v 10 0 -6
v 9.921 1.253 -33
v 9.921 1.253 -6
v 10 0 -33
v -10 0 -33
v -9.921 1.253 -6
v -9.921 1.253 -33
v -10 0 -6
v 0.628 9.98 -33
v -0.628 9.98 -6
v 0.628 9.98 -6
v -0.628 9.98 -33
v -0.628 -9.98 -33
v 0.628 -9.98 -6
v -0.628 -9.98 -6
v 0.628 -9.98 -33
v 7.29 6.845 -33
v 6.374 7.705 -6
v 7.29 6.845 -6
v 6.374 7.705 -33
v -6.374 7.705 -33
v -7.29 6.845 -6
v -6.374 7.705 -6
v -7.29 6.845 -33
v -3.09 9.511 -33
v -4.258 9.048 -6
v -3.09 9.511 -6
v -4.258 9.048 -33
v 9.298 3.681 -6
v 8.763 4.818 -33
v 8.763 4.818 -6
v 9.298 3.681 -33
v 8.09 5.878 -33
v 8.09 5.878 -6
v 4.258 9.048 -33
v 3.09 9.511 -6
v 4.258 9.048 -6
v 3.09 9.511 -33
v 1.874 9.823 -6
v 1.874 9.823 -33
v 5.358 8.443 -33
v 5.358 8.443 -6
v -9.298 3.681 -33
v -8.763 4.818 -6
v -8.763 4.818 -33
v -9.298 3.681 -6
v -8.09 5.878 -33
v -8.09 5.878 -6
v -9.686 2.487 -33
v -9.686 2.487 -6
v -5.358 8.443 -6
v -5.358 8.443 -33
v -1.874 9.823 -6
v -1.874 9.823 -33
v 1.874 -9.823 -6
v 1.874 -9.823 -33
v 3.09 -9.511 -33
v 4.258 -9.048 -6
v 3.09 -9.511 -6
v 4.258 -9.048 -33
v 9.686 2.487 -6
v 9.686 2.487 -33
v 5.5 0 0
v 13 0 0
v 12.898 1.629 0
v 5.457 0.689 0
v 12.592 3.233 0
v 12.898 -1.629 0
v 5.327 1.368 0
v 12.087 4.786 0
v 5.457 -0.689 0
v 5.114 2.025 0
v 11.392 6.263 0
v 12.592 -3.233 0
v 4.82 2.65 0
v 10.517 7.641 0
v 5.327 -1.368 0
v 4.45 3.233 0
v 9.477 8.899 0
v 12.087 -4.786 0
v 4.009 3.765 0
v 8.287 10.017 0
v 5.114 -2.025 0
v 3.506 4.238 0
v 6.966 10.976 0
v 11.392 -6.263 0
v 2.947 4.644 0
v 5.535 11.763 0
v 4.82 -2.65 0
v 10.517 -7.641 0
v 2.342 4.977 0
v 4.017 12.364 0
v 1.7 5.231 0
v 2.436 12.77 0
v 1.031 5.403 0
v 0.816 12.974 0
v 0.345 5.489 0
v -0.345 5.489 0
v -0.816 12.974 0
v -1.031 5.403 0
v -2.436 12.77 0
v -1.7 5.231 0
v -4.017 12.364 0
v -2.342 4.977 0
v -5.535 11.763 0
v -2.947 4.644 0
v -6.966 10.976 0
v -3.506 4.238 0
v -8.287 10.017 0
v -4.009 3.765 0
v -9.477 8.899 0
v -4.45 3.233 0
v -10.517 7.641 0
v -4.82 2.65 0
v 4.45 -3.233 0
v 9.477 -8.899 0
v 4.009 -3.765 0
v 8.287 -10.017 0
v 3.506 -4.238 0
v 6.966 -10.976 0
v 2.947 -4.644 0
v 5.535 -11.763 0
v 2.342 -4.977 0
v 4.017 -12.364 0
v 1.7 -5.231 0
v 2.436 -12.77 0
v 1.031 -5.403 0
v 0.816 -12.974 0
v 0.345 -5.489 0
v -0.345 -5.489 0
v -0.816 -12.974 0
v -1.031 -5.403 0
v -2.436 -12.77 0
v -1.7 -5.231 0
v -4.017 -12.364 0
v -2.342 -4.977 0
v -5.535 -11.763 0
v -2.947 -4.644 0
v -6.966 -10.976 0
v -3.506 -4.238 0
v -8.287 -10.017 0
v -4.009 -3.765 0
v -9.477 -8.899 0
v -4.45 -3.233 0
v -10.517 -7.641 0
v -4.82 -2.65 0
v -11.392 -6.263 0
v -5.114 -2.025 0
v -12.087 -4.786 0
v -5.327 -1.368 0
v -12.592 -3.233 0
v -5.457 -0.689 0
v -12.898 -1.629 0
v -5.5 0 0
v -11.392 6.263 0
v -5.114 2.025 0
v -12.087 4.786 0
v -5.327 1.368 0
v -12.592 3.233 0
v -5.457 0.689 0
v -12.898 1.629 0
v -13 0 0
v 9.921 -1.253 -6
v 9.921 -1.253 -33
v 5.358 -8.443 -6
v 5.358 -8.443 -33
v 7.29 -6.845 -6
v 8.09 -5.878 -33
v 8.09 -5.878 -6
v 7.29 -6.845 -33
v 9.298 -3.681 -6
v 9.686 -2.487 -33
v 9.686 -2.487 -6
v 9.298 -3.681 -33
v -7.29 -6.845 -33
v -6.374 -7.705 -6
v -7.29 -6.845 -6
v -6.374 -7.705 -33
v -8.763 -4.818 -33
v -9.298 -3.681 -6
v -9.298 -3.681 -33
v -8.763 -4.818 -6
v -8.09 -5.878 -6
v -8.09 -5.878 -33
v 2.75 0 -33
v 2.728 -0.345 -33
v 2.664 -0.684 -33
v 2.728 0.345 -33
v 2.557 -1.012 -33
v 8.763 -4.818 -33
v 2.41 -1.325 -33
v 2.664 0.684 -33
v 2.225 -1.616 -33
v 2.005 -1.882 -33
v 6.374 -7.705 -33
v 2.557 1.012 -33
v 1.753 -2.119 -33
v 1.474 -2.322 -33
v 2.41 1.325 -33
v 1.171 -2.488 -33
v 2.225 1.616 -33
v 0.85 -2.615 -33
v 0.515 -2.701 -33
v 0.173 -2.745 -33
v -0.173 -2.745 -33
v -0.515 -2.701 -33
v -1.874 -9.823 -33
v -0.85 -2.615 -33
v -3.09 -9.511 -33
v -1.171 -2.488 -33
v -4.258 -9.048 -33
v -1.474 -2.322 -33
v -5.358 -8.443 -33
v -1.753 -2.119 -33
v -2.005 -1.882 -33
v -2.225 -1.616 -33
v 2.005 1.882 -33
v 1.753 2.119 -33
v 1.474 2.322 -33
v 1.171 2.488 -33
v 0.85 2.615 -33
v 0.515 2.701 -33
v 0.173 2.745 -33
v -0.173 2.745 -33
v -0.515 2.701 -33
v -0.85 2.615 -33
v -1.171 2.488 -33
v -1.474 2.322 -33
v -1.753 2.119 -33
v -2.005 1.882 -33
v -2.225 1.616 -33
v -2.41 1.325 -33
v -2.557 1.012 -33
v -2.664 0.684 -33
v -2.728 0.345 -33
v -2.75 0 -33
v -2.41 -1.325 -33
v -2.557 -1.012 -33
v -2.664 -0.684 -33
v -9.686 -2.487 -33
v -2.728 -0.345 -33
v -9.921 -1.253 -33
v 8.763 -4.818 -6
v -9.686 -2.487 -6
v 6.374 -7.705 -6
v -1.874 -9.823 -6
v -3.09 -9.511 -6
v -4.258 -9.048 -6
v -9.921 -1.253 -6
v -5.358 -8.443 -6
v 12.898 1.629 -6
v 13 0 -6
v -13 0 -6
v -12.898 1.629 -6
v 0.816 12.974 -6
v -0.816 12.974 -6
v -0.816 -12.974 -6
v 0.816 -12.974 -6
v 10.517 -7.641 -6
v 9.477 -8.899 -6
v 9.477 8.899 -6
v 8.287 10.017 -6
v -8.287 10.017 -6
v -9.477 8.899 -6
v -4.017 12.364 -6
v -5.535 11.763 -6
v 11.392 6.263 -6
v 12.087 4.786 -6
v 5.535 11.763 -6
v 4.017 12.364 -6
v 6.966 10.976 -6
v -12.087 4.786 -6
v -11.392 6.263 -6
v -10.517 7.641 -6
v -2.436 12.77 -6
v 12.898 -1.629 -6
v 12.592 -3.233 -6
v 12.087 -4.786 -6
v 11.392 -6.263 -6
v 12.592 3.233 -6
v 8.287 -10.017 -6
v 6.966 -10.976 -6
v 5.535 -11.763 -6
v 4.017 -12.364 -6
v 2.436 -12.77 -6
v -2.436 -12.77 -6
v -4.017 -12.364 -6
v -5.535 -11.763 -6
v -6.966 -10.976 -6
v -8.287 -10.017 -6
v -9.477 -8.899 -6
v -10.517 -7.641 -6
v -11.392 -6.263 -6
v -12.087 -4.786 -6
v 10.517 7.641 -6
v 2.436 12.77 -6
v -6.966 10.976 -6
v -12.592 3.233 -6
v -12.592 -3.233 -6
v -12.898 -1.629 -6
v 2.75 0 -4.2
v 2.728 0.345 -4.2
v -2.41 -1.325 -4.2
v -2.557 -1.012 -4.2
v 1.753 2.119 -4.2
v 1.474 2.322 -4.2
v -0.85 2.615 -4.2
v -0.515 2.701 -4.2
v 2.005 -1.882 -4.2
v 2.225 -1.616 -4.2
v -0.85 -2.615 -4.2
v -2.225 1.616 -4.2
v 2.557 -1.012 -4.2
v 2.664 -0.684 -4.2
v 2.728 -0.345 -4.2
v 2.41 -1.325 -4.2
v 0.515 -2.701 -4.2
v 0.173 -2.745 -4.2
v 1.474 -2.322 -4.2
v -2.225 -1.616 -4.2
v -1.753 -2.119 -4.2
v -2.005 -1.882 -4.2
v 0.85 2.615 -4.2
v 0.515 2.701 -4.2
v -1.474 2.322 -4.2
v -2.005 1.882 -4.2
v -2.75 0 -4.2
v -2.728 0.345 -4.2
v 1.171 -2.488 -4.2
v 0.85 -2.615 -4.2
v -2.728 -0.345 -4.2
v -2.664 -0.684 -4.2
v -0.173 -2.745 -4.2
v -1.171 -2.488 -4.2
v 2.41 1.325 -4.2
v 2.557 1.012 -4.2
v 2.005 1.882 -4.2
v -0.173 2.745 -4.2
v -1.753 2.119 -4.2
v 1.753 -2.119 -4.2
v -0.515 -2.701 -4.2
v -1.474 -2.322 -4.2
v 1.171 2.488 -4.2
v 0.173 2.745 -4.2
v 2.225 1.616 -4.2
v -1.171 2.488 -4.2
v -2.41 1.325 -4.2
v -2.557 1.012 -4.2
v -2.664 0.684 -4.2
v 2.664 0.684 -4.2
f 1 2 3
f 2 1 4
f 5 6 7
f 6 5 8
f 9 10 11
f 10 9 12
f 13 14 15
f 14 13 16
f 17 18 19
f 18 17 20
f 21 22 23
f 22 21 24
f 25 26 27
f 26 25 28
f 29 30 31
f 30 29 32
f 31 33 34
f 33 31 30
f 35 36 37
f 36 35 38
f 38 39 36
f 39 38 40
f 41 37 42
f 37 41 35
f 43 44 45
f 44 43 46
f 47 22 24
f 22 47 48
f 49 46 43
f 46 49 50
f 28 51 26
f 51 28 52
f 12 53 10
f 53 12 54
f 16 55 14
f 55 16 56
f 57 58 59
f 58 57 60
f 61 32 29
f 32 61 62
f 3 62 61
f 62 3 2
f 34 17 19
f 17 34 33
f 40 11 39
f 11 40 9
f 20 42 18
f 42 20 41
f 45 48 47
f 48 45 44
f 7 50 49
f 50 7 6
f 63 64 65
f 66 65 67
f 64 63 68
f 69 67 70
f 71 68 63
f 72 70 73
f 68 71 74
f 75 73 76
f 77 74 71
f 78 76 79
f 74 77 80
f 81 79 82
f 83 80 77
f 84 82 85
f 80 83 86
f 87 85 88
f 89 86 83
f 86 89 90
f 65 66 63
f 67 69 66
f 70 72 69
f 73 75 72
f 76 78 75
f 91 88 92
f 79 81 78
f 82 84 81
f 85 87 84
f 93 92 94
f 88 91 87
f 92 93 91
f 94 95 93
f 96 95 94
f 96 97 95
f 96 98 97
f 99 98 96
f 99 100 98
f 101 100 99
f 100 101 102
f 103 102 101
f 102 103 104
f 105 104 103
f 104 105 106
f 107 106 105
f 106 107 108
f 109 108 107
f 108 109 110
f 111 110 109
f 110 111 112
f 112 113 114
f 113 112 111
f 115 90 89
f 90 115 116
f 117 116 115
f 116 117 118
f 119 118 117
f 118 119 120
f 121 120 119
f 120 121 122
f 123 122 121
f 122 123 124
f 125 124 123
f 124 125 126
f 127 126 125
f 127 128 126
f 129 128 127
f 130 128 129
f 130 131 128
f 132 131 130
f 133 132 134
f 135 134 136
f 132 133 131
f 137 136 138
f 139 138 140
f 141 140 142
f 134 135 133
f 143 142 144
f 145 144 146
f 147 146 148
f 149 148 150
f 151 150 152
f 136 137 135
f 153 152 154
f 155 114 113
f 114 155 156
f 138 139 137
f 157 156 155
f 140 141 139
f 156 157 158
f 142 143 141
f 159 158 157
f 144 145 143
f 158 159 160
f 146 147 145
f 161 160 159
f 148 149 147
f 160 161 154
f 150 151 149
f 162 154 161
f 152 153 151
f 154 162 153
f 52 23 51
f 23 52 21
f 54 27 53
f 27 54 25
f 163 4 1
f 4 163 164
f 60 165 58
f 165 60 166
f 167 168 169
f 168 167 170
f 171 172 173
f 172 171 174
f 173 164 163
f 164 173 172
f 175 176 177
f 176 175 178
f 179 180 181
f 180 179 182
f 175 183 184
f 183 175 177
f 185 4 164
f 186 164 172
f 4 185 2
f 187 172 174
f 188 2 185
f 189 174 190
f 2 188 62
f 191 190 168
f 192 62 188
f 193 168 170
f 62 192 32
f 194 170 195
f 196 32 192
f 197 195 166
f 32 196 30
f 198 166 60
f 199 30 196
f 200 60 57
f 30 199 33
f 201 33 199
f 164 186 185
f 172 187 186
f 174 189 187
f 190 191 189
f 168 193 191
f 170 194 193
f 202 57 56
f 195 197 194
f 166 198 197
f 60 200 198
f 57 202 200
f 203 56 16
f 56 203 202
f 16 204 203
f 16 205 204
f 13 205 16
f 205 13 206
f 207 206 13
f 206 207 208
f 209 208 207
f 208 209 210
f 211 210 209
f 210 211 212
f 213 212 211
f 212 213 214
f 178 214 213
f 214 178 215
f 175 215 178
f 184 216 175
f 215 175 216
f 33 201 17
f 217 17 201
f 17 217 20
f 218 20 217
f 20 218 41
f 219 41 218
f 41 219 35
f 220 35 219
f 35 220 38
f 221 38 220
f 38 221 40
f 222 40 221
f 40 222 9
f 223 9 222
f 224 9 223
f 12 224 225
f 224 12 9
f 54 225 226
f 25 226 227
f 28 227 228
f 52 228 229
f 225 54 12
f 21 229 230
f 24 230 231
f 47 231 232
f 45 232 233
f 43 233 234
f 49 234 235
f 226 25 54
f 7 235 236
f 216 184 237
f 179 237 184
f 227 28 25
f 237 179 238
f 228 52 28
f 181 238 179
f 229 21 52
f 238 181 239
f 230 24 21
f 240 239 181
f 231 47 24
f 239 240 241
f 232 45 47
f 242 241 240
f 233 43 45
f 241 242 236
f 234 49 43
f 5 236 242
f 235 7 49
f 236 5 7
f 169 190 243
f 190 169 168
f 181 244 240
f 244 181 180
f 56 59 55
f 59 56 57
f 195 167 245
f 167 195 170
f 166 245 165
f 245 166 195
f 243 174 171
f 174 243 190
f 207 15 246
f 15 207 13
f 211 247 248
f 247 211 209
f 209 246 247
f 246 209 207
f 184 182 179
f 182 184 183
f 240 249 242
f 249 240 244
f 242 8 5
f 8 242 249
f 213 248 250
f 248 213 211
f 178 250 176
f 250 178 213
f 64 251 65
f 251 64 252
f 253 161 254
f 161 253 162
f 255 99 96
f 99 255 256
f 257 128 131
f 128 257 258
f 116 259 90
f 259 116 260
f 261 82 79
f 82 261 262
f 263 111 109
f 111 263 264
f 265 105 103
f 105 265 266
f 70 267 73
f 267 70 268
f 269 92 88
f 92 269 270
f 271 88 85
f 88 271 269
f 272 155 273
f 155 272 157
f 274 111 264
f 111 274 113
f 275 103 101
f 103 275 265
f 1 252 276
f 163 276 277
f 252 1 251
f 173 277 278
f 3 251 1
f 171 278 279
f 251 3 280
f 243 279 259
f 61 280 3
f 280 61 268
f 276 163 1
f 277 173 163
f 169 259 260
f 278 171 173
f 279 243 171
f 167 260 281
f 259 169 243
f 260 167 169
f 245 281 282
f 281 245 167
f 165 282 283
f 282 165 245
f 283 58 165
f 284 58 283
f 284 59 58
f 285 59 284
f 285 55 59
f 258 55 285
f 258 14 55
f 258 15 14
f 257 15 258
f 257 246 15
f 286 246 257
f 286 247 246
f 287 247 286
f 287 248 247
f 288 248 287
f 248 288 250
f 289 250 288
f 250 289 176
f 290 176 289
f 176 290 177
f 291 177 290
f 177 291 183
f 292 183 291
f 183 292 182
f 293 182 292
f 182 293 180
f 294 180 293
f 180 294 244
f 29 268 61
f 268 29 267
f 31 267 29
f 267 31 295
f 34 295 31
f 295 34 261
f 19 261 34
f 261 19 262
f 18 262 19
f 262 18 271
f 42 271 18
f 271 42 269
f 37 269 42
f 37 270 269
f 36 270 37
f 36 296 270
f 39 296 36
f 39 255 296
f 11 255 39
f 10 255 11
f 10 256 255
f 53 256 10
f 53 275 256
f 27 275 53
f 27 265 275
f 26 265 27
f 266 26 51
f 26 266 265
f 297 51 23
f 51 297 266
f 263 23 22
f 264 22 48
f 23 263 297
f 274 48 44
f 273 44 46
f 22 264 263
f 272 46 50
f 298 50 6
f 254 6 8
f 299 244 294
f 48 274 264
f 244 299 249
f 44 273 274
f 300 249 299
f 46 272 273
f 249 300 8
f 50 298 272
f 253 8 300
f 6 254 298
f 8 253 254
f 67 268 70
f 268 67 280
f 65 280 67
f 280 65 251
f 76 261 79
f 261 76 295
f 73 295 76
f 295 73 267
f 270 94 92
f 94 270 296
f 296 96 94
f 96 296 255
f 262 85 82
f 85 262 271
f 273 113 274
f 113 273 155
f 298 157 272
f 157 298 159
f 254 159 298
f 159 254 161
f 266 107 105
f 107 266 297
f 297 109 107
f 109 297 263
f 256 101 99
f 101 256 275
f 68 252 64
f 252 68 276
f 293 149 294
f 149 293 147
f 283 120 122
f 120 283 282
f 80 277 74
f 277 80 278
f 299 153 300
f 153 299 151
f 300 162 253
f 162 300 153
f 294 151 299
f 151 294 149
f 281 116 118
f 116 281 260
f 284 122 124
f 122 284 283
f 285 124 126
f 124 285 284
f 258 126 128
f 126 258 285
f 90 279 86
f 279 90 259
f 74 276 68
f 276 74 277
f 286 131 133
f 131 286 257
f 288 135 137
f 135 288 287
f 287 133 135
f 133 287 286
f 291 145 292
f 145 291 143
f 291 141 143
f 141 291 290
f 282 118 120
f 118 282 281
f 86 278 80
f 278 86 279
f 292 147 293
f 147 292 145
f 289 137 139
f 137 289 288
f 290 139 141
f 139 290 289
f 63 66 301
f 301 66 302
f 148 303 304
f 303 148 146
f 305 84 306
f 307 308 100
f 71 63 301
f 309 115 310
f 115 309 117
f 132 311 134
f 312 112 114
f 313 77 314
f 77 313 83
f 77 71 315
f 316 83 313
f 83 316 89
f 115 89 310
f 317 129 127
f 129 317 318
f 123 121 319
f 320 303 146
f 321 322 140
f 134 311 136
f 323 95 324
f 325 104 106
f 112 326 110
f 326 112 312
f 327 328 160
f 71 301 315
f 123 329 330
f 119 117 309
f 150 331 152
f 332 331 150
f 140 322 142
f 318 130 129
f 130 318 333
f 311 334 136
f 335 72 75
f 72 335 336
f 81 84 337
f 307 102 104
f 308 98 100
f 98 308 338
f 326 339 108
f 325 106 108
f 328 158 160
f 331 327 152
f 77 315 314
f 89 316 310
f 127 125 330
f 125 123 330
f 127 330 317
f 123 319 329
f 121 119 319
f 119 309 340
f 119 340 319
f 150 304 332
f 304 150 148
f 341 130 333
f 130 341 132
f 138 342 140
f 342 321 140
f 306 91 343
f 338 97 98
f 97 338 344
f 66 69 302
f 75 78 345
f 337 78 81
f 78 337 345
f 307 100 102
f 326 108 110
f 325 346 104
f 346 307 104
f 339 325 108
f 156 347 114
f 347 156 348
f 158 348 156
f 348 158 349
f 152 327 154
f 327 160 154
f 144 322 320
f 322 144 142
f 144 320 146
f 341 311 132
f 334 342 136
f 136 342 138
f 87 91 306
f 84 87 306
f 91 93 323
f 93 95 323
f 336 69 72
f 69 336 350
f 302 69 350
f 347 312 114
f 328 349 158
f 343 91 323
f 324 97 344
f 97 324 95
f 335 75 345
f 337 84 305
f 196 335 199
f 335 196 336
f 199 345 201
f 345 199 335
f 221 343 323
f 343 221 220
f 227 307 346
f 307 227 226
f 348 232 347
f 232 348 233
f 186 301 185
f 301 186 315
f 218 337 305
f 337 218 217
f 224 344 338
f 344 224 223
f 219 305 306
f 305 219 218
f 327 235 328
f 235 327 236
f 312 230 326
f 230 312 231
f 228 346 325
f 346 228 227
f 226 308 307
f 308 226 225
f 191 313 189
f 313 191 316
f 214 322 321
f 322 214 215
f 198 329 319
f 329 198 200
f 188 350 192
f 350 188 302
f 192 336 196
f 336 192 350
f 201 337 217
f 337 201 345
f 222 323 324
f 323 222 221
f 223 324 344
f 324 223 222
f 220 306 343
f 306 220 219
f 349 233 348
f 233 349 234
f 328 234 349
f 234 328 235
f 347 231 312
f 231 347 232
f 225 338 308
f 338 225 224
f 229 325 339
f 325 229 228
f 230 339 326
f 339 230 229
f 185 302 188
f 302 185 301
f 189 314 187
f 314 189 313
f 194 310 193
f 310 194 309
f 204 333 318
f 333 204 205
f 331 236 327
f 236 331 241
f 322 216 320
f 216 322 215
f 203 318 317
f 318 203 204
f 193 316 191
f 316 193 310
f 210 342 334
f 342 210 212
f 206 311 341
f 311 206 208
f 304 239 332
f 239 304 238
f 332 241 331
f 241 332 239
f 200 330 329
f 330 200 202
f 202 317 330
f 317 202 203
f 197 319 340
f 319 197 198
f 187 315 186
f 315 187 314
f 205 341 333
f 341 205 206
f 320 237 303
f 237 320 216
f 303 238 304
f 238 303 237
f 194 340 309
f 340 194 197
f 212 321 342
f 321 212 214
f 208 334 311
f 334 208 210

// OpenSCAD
$fn = 50;


difference() {
	union() {
		translate(v = [0, 0, -33.0000000000]) {
			cylinder(h = 33, r = 10.0000000000);
		}
		translate(v = [0, 0, -6.0000000000]) {
			cylinder(h = 6, r = 13.0000000000);
		}
	}
	union() {
		translate(v = [0, 0, 0]) {
			rotate(a = [0, 0, 0]) {
				difference() {
					union() {
						#translate(v = [0, 0, -33.0000000000]) {
							cylinder(h = 33, r = 2.2500000000);
						}
						#translate(v = [0, 0, -4.2000000000]) {
							cylinder(h = 4.2000000000, r1 = 2.7500000000, r2 = 5.5000000000);
						}
						#translate(v = [0, 0, -33.0000000000]) {
							cylinder(h = 33, r = 2.7500000000);
						}
						#translate(v = [0, 0, -33.0000000000]) {
							cylinder(h = 33, r = 2.2500000000);
						}
					}
					union();
				}
			}
		}
	}
}
